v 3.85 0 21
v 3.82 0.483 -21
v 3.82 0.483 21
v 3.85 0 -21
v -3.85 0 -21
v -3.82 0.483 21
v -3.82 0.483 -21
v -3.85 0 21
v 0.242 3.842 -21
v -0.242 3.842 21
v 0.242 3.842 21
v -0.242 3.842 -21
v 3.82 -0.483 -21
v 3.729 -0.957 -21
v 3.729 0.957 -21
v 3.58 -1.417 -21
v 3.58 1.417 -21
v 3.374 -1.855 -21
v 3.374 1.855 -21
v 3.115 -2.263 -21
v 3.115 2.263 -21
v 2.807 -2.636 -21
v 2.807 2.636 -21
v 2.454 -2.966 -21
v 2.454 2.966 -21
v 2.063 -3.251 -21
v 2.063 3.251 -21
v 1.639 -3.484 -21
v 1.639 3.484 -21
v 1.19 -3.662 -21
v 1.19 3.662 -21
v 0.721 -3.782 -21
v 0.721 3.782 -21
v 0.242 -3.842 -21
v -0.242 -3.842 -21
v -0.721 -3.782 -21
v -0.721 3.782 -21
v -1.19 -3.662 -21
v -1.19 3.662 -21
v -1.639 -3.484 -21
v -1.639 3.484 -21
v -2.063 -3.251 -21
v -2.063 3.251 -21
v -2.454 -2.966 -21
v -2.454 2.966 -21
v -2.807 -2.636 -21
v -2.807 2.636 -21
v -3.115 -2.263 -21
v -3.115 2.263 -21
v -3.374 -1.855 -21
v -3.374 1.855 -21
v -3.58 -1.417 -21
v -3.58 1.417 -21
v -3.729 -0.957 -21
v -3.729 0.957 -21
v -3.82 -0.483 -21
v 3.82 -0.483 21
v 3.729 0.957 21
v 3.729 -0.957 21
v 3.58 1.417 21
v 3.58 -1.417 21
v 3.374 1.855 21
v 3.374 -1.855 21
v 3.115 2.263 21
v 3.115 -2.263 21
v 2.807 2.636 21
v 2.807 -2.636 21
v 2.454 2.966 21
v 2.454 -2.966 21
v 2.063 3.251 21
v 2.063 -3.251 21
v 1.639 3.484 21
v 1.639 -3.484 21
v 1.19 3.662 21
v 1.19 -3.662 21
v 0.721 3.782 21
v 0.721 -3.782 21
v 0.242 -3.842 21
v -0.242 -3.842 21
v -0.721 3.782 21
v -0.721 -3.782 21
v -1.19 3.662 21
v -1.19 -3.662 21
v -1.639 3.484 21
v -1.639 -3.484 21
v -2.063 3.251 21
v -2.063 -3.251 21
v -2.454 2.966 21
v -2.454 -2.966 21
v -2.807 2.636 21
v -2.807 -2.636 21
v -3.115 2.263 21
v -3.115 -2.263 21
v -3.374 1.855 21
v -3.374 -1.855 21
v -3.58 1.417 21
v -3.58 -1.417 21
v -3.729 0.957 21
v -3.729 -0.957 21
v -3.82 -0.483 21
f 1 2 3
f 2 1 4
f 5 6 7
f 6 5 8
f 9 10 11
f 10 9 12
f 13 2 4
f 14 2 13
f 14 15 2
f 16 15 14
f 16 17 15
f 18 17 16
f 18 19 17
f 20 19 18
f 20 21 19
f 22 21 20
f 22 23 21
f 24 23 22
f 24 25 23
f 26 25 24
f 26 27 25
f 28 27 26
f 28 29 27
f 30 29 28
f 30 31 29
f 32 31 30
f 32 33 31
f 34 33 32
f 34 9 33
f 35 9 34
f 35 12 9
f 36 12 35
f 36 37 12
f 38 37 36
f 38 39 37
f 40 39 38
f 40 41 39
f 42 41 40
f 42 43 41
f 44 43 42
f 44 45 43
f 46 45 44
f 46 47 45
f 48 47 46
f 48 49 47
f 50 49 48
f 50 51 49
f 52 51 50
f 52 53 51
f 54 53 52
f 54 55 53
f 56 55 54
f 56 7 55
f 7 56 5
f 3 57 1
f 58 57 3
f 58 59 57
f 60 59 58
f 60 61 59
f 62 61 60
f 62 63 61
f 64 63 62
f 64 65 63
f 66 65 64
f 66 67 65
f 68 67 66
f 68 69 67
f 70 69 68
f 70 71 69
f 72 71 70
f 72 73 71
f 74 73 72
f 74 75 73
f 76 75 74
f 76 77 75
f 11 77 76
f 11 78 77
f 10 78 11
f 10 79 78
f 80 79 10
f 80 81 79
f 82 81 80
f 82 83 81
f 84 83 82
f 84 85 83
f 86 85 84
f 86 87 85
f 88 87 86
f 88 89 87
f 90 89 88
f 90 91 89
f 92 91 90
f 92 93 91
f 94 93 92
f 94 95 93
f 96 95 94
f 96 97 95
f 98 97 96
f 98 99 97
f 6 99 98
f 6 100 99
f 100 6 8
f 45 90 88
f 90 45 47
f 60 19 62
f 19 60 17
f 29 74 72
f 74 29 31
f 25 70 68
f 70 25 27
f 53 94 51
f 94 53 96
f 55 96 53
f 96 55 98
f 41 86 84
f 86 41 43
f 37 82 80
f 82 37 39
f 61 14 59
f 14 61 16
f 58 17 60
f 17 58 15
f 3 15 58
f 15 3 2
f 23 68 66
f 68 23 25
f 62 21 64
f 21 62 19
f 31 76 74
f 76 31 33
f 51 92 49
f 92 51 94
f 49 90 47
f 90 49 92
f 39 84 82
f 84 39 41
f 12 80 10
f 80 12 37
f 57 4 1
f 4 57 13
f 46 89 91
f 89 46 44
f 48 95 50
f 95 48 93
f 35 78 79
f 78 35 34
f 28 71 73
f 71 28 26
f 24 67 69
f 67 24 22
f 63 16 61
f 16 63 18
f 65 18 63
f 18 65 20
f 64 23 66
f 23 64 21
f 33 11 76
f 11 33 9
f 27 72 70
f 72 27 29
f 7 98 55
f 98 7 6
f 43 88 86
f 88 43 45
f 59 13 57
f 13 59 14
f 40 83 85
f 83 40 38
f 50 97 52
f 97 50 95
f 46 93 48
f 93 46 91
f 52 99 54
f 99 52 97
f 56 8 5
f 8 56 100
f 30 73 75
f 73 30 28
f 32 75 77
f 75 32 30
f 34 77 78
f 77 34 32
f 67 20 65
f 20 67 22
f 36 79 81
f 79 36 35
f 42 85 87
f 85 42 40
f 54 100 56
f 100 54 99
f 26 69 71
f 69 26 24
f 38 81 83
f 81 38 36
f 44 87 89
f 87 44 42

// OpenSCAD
$fn = 50;


difference() {
	union() {
		translate(v = [0, 0, -21.0000000000]) {
			cylinder(h = 42, r = 3.8500000000);
		}
	}
	union() {
		translate(v = [0, 0, -100.0000000000]) {
			cylinder(h = 200, r = 0);
		}
	}
}
